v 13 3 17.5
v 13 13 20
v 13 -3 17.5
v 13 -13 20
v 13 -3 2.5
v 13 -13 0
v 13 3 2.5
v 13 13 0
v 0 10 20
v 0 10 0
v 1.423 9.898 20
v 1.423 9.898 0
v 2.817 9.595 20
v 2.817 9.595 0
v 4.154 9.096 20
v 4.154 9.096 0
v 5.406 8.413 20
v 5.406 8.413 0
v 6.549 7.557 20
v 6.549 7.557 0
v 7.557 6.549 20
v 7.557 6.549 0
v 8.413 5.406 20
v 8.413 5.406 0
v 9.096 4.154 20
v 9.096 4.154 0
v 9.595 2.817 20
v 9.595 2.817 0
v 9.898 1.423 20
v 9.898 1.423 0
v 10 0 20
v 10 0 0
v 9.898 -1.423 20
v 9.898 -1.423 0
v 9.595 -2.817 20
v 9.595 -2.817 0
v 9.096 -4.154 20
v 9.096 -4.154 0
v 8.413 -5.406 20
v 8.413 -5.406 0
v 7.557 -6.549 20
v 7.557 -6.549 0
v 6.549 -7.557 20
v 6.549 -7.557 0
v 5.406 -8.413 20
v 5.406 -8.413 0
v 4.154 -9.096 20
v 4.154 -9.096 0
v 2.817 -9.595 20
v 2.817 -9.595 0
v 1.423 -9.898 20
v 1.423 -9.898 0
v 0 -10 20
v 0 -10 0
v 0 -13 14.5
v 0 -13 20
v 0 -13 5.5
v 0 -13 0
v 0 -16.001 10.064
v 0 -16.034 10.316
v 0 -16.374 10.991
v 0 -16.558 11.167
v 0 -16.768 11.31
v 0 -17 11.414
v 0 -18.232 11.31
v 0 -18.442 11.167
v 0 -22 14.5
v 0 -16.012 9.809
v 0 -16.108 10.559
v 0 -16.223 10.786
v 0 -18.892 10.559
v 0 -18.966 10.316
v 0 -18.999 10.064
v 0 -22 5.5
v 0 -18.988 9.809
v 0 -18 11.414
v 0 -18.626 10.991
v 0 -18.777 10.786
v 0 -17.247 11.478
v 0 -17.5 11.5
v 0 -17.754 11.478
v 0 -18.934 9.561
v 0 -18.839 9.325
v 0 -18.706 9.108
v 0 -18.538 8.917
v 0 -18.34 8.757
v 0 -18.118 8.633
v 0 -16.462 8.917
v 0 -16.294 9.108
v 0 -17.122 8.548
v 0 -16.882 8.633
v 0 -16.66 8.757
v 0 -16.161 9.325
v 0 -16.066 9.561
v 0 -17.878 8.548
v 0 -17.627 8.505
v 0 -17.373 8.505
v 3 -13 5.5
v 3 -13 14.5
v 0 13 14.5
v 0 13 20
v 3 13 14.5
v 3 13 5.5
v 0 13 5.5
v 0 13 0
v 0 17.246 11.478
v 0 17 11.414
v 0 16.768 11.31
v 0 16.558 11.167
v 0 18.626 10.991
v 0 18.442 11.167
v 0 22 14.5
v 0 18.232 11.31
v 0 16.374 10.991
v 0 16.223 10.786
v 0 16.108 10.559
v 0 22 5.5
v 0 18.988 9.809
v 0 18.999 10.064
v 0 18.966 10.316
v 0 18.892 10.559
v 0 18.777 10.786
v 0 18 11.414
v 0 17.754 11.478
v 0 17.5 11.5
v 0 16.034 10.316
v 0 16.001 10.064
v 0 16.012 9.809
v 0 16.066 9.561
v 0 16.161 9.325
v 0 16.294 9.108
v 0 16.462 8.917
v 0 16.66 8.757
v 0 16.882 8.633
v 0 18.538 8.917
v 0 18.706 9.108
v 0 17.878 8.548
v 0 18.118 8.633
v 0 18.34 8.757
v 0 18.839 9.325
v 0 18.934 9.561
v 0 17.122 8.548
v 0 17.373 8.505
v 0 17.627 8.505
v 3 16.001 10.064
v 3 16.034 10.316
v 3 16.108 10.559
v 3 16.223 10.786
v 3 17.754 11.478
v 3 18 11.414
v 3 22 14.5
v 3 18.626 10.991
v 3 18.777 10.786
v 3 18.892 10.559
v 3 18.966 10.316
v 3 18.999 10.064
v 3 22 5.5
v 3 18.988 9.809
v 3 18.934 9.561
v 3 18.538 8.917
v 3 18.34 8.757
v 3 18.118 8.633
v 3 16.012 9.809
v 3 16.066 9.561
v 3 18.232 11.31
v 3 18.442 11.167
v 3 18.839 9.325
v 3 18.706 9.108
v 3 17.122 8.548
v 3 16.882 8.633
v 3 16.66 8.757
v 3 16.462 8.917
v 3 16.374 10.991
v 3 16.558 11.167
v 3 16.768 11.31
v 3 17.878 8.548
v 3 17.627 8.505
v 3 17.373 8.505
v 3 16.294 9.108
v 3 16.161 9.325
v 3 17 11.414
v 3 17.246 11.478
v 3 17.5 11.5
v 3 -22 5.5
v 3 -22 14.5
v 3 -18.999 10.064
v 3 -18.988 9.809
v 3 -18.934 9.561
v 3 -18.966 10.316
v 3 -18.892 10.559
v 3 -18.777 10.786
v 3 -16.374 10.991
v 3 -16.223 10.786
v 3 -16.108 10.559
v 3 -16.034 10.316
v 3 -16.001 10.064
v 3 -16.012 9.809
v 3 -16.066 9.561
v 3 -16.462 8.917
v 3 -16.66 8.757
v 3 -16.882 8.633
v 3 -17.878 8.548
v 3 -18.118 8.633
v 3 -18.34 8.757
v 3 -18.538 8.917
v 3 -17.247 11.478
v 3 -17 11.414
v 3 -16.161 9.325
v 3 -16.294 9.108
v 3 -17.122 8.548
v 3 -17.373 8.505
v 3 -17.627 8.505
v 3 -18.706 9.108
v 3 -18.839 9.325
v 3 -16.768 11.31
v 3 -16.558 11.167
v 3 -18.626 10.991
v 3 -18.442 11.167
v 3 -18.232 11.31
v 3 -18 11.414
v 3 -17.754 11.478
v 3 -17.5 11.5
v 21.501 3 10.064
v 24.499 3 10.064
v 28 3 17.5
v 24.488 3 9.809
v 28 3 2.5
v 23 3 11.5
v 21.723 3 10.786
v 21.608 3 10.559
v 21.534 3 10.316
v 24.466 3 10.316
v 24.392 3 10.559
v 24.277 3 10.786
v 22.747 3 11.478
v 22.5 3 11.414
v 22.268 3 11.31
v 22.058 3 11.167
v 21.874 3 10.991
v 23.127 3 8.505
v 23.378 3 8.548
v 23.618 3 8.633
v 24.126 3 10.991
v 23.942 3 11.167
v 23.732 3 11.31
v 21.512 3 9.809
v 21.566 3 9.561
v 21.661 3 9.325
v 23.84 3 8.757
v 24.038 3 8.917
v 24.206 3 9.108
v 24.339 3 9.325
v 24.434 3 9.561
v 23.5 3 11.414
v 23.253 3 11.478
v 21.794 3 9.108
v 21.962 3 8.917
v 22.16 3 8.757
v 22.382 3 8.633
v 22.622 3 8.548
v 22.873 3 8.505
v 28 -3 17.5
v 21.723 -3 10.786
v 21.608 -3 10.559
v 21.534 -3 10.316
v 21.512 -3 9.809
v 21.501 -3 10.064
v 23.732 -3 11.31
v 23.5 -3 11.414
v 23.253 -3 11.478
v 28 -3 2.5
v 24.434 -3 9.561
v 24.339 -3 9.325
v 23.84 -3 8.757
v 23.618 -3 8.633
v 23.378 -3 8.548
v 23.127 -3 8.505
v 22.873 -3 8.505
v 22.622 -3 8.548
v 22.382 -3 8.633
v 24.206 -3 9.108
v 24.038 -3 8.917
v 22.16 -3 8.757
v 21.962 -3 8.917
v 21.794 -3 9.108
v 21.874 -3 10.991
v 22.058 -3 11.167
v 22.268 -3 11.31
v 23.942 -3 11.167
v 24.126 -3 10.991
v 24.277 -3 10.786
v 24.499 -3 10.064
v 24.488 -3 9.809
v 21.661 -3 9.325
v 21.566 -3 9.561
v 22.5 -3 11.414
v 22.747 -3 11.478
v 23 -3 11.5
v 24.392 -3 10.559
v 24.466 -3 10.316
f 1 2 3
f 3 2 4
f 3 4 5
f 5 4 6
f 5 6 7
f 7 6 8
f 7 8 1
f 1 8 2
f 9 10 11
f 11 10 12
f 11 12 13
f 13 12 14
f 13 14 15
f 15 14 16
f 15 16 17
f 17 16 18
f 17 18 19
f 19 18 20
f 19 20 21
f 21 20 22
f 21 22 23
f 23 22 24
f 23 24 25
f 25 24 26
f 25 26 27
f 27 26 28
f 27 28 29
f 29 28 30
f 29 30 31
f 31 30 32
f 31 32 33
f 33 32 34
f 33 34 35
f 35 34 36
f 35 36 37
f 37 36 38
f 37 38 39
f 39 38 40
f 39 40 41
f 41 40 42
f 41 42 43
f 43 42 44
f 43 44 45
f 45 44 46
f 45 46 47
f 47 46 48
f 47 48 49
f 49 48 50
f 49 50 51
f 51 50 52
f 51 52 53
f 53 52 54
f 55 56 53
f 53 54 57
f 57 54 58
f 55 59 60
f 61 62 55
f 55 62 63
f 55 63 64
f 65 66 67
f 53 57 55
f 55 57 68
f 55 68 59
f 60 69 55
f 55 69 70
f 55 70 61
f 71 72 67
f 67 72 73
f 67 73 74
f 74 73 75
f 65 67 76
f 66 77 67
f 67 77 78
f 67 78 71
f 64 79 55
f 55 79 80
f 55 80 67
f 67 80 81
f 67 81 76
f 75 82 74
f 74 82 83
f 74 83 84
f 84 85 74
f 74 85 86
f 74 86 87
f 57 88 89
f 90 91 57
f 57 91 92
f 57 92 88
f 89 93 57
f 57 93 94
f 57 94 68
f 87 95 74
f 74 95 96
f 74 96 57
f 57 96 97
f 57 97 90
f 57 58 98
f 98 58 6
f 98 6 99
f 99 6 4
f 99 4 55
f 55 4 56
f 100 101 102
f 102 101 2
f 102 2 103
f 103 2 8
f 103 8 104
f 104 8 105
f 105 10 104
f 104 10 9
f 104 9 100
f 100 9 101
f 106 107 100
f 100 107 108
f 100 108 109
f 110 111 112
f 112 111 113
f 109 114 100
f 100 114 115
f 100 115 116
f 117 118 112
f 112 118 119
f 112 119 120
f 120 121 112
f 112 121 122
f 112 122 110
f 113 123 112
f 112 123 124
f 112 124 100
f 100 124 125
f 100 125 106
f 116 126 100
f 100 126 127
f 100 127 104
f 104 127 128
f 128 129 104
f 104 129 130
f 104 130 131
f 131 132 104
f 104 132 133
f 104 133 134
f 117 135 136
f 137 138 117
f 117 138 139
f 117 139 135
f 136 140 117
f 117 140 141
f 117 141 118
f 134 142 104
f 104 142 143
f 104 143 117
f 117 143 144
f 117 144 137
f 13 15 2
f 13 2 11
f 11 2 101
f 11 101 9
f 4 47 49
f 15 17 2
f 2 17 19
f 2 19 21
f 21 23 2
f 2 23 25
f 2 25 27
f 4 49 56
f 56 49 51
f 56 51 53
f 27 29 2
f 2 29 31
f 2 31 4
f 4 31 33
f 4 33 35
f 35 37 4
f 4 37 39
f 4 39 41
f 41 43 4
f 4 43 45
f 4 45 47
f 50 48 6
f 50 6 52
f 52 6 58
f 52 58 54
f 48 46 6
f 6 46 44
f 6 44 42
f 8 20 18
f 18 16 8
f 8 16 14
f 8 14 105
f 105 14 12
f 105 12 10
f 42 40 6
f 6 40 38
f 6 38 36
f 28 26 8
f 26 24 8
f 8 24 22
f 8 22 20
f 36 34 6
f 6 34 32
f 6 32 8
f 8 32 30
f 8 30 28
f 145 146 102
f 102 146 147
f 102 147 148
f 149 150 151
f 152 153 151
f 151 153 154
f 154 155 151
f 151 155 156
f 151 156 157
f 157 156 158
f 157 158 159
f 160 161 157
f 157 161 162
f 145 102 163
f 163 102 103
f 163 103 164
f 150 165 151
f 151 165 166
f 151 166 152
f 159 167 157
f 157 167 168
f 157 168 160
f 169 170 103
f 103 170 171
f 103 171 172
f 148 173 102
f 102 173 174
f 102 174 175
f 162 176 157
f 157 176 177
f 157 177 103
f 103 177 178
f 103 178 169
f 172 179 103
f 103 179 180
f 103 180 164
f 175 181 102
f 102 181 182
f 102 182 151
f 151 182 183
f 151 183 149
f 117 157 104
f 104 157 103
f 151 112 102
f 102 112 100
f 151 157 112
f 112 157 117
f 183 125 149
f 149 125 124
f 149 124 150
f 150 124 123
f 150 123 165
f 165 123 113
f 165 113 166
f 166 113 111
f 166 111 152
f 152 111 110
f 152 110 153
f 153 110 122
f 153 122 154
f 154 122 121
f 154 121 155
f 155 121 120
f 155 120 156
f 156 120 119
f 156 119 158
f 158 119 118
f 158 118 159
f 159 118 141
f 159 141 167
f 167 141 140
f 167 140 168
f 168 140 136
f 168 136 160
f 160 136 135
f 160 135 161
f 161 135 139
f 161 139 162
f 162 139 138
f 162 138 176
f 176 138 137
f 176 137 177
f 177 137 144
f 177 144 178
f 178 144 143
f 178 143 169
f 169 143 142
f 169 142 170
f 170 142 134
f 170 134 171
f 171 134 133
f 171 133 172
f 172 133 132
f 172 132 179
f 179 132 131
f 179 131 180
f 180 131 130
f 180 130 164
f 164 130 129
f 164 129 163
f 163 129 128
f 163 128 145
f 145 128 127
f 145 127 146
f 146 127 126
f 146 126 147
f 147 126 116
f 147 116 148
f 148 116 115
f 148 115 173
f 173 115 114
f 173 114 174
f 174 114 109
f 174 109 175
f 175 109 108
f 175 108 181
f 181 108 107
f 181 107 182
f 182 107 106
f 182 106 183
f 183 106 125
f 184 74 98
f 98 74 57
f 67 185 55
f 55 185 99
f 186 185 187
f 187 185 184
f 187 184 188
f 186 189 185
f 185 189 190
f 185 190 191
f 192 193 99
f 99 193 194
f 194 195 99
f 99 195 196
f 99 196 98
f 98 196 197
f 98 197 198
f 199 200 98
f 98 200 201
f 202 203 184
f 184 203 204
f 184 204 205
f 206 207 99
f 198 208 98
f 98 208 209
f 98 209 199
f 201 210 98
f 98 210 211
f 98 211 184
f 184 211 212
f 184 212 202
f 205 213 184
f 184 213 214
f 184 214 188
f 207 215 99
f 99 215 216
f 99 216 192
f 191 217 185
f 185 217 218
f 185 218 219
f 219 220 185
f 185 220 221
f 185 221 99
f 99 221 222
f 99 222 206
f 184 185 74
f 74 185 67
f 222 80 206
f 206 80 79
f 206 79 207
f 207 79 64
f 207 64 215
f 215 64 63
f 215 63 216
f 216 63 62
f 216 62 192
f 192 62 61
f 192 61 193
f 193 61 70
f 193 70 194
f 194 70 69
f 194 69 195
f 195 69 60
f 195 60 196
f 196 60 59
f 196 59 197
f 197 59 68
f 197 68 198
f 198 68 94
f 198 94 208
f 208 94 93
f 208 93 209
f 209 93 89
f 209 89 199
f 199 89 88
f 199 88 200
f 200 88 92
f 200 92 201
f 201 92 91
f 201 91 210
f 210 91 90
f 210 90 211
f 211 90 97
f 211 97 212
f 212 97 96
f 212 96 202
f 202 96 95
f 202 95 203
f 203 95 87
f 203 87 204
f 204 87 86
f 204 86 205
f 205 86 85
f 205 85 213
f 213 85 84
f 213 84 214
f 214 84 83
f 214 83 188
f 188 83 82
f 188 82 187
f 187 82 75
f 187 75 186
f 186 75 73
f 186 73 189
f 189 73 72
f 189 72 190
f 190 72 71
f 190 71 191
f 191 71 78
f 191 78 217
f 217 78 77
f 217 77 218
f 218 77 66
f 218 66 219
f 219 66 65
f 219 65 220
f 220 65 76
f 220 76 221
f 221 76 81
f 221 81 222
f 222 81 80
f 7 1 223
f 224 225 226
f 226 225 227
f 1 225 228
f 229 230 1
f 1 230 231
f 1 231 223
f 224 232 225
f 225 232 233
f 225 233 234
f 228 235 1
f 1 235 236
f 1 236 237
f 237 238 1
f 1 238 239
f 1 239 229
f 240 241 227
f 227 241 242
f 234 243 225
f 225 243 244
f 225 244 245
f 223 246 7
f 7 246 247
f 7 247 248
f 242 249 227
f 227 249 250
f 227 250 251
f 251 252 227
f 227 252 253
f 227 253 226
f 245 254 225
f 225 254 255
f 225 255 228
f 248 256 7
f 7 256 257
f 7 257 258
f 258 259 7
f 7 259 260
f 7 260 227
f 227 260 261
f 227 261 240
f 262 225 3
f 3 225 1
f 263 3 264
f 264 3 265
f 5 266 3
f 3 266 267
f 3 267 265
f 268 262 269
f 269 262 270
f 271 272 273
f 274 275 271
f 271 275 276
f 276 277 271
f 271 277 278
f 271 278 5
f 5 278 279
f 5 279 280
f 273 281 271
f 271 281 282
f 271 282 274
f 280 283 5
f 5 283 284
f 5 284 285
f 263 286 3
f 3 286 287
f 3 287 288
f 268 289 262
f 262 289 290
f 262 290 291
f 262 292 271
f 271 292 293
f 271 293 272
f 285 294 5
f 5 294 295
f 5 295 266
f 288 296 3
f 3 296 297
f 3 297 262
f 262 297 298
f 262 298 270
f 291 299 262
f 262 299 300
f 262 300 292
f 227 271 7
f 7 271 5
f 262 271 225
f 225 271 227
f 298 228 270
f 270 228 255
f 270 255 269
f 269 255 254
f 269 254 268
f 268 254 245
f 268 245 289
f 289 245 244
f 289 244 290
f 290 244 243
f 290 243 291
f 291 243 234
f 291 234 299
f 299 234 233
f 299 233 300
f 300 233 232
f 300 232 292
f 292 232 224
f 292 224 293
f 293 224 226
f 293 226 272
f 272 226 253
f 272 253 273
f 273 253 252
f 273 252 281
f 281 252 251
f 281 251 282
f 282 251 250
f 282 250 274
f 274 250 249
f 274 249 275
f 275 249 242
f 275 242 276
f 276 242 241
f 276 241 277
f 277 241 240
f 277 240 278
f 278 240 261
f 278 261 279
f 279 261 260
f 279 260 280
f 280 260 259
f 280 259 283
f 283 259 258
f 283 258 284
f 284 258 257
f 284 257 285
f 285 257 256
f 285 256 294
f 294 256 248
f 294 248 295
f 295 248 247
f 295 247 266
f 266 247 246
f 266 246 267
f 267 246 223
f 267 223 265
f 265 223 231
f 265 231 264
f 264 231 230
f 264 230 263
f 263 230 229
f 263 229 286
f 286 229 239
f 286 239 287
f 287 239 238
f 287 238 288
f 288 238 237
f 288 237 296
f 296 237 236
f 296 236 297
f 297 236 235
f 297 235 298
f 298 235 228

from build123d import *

# Parameters (mm, degrees)
EXTRUDE_1_DEPTH     = 20
SKETCH_7_W          = 9
SKETCH_7_H          = 12
SKETCH_7_R          = 1.5
EXTRUDE_3_DEPTH     = 3
EXTRUDE_4_DEPTH     = 15
SKETCH_9_R          = 1.5
CUT_EXTRUDE_1_DEPTH = 15
SKETCH_6_R          = 1.5
EXTRUDE_2_DEPTH     = 3


with BuildPart() as part:
    # Эскиз1 → Бобышка-Вытянуть1 (new body)
    with BuildSketch(Plane.XY):
        with BuildLine():
            Line((0, 10), (0, 13))
            Line((0, 13), (13, 13))
            Line((13, 13), (13, -13))
            Line((13, -13), (0, -13))
            Line((0, -13), (0, -10))
            ThreePointArc((0, -10), (10, 0), (0, 10))
        make_face()
    extrude(amount=EXTRUDE_1_DEPTH)

    # Эскиз7 → Бобышка-Вытянуть3 (add)
    # profile 1 of 2: a face of its own
    with BuildSketch(Plane.ZY):
        with Locations((10, 16)):
            Rectangle(SKETCH_7_W, SKETCH_7_H)
        with Locations((10, 17.5)):
            Circle(SKETCH_7_R, mode=Mode.SUBTRACT)
    # profile 2 of 2: a face of its own
    with BuildSketch(Plane.ZY):
        with Locations((10, -16)):
            Rectangle(SKETCH_7_W, SKETCH_7_H)
        with Locations((10, -17.5)):
            Circle(SKETCH_7_R, mode=Mode.SUBTRACT)
    extrude(amount=-EXTRUDE_3_DEPTH)

    # Эскиз8 → Бобышка-Вытянуть4 (add)
    with BuildSketch(Plane(origin=(13, 0, 0), x_dir=(0, 0, -1), z_dir=(1, 0, 0))):
        Polygon((-17.5, 3), (-17.5, -3), (-2.5, -3), (-2.5, 3), (-10, 3), align=None)
    extrude(amount=EXTRUDE_4_DEPTH)

    # Эскиз9 → Вырез-Вытянуть1 (cut)
    with BuildSketch(Plane(origin=(0, 3, 0), x_dir=(1, 0, 0), z_dir=(0, 1, 0))):
        with Locations(Location((23, -10, 0), (0, 0, 270))):
            Circle(SKETCH_9_R)
    extrude(amount=-CUT_EXTRUDE_1_DEPTH, mode=Mode.SUBTRACT)

    # Эскиз6 → Бобышка-Вытянуть2 (add)
    # profile 1 of 2: a face of its own
    with BuildSketch(Plane.ZY):
        Polygon((10, 10), (5.5, 10), (5.5, 22), (14.5, 22), (14.5, 10), align=None)
        with Locations((10, 17.5)):
            Circle(SKETCH_6_R, mode=Mode.SUBTRACT)
    # profile 2 of 2: a face of its own
    with BuildSketch(Plane.ZY):
        Polygon((10, -10), (5.5, -10), (5.5, -22), (14.5, -22), (14.5, -10), align=None)
        with Locations((10, -17.5)):
            Circle(SKETCH_6_R, mode=Mode.SUBTRACT)
    extrude(amount=-EXTRUDE_2_DEPTH)


solid = part.part
